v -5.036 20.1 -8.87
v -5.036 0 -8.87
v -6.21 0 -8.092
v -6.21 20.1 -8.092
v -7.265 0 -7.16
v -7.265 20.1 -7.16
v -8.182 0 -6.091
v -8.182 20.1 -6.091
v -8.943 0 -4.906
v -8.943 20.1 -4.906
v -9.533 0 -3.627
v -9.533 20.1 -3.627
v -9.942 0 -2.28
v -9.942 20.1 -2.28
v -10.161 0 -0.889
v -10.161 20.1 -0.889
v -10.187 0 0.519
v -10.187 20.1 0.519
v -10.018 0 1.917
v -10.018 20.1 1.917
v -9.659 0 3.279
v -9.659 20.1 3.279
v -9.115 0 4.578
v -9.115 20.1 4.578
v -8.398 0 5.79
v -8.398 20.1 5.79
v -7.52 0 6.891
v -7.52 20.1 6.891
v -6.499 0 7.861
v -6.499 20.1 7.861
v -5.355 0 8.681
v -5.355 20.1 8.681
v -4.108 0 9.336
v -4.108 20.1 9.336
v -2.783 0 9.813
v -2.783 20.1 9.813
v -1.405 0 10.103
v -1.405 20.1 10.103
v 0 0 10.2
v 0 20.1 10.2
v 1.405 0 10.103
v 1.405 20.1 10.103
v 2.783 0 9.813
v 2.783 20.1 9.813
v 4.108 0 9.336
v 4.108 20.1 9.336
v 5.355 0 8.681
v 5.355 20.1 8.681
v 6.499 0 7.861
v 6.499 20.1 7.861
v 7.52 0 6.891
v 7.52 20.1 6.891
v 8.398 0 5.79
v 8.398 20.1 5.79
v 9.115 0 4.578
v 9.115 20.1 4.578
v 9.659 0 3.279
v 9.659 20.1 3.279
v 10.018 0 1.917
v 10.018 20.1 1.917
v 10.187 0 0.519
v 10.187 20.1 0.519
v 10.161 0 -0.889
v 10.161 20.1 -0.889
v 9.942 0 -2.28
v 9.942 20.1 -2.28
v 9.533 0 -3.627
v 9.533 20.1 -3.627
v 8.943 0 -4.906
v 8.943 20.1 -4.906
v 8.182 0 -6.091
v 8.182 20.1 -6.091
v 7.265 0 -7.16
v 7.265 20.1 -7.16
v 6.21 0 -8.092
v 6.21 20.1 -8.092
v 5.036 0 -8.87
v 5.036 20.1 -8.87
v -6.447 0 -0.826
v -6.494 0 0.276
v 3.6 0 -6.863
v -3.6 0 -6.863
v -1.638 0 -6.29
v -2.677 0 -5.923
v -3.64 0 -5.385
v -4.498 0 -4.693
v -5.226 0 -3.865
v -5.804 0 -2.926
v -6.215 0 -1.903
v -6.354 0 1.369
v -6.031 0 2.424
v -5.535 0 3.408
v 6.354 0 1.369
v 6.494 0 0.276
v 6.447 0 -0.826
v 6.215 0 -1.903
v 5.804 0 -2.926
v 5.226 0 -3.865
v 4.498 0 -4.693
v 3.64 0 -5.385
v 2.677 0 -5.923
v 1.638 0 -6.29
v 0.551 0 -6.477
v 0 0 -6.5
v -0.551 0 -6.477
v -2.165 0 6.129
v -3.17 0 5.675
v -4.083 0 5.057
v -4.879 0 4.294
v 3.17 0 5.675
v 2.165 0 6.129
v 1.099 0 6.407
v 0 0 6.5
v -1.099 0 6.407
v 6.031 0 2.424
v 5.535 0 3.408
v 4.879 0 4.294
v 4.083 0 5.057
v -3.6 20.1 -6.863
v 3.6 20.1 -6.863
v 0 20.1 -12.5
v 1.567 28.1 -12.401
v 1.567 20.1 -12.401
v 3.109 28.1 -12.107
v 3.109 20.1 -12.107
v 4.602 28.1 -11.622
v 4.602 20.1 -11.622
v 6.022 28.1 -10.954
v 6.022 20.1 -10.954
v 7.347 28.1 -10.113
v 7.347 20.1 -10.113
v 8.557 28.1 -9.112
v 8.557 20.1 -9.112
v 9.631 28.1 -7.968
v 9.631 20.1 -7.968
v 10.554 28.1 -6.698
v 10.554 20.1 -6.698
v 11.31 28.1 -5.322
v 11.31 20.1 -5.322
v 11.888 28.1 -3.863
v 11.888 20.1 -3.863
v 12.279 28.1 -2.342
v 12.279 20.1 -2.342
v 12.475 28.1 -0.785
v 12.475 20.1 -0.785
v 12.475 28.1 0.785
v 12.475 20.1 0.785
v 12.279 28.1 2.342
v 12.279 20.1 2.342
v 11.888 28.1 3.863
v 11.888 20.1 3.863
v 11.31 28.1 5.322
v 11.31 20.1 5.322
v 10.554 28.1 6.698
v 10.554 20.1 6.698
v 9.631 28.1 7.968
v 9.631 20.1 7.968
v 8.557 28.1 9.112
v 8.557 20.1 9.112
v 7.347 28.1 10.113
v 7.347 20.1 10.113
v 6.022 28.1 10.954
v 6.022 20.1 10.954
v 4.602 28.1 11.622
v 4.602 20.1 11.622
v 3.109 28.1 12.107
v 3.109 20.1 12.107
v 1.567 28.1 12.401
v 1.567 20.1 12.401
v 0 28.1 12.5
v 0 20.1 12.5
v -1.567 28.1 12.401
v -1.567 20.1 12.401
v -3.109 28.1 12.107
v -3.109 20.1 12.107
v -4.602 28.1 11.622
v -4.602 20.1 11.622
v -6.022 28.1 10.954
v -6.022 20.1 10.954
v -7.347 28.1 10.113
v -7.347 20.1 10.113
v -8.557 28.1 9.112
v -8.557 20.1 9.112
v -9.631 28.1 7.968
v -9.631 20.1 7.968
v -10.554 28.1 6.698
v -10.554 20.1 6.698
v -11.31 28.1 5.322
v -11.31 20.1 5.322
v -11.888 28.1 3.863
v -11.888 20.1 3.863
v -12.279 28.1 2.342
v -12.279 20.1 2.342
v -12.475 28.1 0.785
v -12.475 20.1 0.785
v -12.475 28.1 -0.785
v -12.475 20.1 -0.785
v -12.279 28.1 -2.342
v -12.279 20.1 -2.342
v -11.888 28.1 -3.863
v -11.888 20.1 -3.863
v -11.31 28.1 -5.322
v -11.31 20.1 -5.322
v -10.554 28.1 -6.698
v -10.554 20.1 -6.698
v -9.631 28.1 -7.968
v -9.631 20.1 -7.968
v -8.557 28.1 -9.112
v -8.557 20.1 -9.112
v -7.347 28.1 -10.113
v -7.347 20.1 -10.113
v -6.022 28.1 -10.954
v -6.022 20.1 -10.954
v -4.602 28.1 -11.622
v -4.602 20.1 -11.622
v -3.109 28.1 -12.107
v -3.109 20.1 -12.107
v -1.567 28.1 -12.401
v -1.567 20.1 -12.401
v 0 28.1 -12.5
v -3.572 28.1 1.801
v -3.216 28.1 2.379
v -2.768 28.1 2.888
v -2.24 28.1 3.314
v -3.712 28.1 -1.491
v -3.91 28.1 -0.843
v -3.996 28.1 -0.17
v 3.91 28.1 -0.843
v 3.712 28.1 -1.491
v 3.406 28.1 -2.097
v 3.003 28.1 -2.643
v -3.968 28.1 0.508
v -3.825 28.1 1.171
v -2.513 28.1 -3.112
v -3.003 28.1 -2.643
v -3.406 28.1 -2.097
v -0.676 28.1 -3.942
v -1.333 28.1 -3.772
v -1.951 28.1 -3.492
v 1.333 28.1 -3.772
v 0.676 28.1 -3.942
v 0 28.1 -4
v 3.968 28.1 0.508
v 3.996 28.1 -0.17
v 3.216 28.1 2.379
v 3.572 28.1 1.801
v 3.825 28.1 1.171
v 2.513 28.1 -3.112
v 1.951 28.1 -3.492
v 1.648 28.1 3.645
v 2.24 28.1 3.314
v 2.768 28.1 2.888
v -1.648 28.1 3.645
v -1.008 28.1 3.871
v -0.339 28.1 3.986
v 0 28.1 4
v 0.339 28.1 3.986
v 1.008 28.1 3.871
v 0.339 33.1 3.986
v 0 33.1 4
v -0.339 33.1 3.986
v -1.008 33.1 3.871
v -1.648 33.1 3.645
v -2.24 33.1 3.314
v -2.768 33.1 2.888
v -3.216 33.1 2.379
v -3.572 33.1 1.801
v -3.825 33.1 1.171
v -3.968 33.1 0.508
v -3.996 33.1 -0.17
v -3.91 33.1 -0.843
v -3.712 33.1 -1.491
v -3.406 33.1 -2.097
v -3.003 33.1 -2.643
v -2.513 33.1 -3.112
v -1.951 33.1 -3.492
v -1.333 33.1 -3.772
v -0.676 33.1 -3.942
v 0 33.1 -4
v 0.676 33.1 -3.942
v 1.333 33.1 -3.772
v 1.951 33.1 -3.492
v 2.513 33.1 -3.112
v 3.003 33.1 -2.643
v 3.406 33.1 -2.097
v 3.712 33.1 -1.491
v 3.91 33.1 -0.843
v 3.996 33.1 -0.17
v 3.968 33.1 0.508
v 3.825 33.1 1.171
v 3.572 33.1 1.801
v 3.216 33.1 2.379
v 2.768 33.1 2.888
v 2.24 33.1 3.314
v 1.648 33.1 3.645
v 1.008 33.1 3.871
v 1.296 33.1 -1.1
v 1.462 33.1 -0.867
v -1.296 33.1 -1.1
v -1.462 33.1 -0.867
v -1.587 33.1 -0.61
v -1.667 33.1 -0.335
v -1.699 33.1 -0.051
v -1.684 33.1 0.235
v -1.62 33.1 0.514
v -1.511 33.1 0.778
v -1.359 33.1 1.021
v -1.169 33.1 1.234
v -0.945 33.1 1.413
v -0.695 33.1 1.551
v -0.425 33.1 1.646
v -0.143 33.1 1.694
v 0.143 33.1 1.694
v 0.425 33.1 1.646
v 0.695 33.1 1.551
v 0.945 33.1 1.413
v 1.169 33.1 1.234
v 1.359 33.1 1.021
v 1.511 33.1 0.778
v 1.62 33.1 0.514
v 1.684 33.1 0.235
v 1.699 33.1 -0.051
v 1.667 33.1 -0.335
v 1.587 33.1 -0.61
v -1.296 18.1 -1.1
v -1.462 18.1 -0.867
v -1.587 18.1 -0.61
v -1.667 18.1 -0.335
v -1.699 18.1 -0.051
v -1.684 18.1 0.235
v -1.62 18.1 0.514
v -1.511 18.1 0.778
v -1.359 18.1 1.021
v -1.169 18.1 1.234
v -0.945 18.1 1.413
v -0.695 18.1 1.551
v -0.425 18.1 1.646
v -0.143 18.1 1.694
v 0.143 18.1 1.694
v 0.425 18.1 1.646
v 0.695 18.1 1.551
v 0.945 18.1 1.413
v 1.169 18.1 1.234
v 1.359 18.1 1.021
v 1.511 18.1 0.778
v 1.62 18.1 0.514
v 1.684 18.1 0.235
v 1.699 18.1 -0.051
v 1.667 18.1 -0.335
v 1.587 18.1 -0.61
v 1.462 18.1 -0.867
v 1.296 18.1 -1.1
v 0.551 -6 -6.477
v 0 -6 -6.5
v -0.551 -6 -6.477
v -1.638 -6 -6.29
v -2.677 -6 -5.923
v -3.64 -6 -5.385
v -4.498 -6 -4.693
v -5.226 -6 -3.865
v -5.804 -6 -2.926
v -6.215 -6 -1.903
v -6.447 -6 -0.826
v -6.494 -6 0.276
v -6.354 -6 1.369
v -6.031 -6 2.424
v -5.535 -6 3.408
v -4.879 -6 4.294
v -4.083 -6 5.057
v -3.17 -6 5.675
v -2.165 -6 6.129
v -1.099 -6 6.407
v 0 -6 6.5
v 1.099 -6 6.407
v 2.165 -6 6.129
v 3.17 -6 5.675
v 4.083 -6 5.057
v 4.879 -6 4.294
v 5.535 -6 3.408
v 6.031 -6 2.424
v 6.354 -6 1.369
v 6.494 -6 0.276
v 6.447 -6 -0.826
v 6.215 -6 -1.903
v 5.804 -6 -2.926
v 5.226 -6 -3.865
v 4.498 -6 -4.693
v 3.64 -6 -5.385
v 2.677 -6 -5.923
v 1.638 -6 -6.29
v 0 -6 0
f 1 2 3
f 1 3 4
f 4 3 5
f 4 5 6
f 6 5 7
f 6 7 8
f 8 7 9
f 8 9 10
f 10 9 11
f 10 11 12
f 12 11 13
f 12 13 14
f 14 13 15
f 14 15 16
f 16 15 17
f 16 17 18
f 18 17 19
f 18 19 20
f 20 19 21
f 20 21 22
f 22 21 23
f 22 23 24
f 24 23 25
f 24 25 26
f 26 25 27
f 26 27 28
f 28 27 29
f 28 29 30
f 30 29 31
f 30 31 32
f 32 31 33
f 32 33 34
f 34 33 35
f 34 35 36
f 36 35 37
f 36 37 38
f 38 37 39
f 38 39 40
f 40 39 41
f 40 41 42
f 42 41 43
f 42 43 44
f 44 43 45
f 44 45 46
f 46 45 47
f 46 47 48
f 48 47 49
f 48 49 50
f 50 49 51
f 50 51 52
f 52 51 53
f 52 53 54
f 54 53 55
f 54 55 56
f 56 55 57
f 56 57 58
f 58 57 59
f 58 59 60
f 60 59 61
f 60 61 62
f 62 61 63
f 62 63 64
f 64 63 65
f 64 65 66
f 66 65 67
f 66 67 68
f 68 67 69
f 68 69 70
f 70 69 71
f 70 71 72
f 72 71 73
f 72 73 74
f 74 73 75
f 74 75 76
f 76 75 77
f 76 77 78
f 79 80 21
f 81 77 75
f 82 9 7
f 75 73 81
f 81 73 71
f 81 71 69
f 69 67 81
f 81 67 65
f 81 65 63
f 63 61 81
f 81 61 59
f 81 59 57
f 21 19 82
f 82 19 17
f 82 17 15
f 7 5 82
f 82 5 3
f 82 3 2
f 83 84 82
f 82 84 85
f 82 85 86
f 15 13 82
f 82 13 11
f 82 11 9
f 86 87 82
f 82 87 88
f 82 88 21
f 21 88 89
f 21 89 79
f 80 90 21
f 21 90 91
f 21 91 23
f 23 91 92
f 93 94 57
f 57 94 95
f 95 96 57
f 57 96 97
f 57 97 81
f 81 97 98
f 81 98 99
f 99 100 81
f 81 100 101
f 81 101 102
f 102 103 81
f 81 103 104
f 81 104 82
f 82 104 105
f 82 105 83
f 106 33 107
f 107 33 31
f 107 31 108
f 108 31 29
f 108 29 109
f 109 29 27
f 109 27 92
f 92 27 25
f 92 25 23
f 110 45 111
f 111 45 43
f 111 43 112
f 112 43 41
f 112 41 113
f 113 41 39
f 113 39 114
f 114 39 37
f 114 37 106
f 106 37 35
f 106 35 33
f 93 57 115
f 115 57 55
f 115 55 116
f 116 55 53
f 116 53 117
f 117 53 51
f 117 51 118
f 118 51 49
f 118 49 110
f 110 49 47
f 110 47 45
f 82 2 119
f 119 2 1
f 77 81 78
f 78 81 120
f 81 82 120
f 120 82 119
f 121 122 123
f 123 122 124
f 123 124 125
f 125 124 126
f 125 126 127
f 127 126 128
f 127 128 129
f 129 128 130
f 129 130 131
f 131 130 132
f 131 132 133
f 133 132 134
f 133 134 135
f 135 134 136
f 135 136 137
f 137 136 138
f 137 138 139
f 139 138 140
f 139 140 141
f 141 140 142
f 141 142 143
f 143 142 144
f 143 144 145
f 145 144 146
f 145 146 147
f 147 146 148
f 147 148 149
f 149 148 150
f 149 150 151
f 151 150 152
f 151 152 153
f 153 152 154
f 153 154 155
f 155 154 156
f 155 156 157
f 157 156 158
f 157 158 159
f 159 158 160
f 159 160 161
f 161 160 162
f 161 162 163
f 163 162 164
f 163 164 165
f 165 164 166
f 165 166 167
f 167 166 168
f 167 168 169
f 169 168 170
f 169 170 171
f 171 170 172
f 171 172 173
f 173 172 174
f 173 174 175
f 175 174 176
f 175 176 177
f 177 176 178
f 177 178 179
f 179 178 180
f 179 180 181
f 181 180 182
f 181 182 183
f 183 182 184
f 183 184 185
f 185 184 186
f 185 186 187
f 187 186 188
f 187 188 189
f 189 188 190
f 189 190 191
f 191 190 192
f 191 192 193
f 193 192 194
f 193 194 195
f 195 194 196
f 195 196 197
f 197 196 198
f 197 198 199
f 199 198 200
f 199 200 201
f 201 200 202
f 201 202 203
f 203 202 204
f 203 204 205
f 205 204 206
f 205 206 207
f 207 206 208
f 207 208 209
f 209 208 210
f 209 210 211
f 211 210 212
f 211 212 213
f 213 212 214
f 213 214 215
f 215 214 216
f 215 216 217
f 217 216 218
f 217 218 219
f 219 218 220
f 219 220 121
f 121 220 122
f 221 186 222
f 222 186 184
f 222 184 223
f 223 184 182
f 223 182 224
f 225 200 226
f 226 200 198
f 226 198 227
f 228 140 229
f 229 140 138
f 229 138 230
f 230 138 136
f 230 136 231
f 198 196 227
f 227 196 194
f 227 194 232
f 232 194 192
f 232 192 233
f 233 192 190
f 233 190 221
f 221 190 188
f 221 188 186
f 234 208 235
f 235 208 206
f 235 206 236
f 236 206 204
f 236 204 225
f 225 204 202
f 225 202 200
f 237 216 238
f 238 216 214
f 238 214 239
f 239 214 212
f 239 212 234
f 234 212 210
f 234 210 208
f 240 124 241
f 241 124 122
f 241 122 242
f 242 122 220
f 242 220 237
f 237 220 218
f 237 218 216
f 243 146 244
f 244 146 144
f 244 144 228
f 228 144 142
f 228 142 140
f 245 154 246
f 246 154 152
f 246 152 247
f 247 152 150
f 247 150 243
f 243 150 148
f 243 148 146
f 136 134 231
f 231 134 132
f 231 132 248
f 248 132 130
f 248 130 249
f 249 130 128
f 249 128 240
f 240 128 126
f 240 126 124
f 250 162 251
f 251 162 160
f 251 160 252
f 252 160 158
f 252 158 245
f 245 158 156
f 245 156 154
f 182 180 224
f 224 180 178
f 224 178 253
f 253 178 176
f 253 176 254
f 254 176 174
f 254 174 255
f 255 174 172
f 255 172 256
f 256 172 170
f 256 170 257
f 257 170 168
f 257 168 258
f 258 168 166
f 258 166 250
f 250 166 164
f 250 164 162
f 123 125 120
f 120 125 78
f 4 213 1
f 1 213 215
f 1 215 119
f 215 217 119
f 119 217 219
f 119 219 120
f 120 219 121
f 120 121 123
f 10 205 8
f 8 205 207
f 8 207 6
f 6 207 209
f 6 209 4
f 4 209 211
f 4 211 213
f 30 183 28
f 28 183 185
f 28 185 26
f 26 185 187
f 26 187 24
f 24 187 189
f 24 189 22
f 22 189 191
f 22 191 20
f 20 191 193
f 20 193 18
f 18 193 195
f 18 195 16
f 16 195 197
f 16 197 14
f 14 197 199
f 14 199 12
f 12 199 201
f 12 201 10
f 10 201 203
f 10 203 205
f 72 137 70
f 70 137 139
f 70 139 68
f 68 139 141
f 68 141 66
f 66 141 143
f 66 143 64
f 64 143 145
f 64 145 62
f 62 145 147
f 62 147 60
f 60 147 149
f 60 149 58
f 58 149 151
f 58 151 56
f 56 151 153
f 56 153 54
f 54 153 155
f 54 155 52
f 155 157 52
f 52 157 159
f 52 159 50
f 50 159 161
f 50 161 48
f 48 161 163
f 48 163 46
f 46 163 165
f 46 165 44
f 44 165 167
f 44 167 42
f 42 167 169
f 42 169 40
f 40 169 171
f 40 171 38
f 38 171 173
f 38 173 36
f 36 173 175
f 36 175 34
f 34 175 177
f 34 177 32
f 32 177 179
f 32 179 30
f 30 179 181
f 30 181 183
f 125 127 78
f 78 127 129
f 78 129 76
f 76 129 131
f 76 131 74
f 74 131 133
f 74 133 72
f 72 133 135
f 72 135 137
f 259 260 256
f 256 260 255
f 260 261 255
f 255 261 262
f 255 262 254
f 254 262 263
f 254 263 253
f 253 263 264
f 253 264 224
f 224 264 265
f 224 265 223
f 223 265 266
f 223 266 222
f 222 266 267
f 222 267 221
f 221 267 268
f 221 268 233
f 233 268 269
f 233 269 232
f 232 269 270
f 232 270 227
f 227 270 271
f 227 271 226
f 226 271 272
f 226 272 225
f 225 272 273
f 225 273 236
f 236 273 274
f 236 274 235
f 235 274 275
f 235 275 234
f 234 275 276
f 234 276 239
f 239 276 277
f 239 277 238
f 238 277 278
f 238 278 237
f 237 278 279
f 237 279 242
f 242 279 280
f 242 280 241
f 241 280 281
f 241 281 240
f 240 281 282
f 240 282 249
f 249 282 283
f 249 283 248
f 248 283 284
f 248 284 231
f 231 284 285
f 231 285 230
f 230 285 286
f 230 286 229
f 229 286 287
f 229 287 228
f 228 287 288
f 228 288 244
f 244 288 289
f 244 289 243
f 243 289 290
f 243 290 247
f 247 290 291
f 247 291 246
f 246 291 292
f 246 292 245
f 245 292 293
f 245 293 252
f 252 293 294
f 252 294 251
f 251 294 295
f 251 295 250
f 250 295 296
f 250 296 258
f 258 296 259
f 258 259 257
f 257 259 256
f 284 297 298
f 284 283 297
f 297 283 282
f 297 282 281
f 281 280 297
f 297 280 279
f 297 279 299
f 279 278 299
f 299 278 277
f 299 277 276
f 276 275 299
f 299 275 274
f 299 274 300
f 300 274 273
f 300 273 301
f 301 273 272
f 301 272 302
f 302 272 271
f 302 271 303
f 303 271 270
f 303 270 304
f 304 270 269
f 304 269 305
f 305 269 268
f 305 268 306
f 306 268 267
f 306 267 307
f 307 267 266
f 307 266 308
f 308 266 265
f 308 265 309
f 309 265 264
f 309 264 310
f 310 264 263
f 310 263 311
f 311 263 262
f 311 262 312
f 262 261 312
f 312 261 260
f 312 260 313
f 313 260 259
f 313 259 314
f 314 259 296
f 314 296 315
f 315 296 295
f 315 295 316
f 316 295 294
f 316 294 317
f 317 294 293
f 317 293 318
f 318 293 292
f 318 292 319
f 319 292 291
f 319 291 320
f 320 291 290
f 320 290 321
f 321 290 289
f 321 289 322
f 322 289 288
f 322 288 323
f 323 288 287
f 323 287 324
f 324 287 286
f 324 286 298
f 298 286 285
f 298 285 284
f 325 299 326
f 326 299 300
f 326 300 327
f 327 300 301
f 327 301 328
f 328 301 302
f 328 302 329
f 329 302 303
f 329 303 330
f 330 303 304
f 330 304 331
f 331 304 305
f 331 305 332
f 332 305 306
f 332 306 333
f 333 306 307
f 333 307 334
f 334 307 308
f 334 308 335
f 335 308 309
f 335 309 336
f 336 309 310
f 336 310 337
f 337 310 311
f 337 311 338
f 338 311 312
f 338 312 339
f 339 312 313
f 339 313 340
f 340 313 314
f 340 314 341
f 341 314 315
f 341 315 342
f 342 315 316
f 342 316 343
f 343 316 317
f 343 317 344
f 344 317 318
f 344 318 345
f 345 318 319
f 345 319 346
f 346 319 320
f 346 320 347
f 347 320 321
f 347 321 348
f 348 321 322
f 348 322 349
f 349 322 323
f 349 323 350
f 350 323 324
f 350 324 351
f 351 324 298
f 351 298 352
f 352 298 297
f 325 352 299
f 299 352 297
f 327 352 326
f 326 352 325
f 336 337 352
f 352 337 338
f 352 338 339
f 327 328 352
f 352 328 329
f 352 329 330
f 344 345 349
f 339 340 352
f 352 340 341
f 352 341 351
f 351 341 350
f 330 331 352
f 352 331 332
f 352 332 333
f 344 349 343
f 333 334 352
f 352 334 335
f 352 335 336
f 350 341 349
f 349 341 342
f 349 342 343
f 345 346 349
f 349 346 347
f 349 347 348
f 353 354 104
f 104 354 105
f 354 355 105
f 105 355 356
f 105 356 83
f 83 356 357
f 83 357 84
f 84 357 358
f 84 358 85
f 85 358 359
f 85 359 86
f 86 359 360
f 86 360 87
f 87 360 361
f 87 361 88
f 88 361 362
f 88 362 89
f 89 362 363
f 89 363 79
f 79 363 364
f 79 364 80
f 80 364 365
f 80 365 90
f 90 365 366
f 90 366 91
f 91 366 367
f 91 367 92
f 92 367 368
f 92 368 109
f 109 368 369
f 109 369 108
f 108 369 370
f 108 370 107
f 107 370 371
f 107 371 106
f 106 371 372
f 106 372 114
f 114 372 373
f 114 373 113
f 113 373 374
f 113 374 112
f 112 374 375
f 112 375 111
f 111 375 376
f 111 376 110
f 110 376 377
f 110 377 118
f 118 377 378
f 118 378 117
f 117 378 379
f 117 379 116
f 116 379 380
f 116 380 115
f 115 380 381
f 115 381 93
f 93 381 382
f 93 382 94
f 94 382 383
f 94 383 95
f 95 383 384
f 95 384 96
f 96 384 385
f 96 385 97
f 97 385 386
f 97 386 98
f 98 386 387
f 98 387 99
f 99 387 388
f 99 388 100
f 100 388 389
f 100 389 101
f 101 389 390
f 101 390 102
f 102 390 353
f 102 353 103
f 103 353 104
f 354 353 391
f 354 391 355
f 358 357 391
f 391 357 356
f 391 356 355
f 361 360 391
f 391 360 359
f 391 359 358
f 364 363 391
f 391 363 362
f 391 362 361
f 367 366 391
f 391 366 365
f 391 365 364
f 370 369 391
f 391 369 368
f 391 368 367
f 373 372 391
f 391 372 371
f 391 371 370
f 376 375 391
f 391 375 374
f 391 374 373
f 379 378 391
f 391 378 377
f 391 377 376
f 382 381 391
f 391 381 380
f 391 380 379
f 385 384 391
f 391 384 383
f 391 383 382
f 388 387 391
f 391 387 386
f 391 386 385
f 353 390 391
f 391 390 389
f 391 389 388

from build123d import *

# Parameters (mm, degrees)
SKETCH1_R           = 10.2
BOSS_EXTRUDE1_DEPTH = 20.1
CUT_EXTRUDE3_DEPTH  = 21.1
SKETCH9_R           = 12.5
BOSS_EXTRUDE3_DEPTH = 8
SKETCH10_R          = 4
BOSS_EXTRUDE4_DEPTH = 5
CUT_EXTRUDE5_DEPTH  = 15
SKETCH12_R          = 6.5
BOSS_EXTRUDE5_DEPTH = 6


with BuildPart() as part:
    # Sketch1 → Boss-Extrude1 (new body)
    with BuildSketch(Plane(origin=(0, 0, 0), x_dir=(1, 0, 0), z_dir=(0, 1, 0))):
        Circle(SKETCH1_R)
    extrude(amount=BOSS_EXTRUDE1_DEPTH)

    # Sketch6 → Cut-Extrude3 (cut, through all)
    with BuildSketch(Plane(origin=(0, 20.1, 0), x_dir=(1, 0, 0), z_dir=(0, 1, 0))):
        Polygon((-3.6, 6.86312611), (3.6, 6.86312611), (5.03591293, 8.870151124), (5.03591293, 10.936036024), (-4.887797844, 10.936036024), (-5.03591293, 8.870151124), align=None)
    extrude(amount=-CUT_EXTRUDE3_DEPTH, mode=Mode.SUBTRACT)

    # Sketch9 → Boss-Extrude3 (add)
    with BuildSketch(Plane(origin=(0, 20.1, 0), x_dir=(1, 0, 0), z_dir=(0, 1, 0))):
        Circle(SKETCH9_R)
    extrude(amount=BOSS_EXTRUDE3_DEPTH)

    # Sketch10 → Boss-Extrude4 (add)
    with BuildSketch(Plane(origin=(0, 28.1, 0), x_dir=(1, 0, 0), z_dir=(0, 1, 0))):
        Circle(SKETCH10_R)
    extrude(amount=BOSS_EXTRUDE4_DEPTH)

    # Sketch11 → Cut-Extrude5 (cut)
    with BuildSketch(Plane(origin=(0, 33.1, 0), x_dir=(1, 0, 0), z_dir=(0, 1, 0))):
        with BuildLine():
            Line((-1.29614814, 1.1), (1.29614814, 1.1))
            ThreePointArc((1.29614814, 1.1), (0, -1.7), (-1.29614814, 1.1))
        make_face()
    extrude(amount=-CUT_EXTRUDE5_DEPTH, mode=Mode.SUBTRACT)

    # Sketch12 → Boss-Extrude5 (add)
    with BuildSketch(Plane.XZ):
        Circle(SKETCH12_R)
    extrude(amount=BOSS_EXTRUDE5_DEPTH)


solid = part.part
